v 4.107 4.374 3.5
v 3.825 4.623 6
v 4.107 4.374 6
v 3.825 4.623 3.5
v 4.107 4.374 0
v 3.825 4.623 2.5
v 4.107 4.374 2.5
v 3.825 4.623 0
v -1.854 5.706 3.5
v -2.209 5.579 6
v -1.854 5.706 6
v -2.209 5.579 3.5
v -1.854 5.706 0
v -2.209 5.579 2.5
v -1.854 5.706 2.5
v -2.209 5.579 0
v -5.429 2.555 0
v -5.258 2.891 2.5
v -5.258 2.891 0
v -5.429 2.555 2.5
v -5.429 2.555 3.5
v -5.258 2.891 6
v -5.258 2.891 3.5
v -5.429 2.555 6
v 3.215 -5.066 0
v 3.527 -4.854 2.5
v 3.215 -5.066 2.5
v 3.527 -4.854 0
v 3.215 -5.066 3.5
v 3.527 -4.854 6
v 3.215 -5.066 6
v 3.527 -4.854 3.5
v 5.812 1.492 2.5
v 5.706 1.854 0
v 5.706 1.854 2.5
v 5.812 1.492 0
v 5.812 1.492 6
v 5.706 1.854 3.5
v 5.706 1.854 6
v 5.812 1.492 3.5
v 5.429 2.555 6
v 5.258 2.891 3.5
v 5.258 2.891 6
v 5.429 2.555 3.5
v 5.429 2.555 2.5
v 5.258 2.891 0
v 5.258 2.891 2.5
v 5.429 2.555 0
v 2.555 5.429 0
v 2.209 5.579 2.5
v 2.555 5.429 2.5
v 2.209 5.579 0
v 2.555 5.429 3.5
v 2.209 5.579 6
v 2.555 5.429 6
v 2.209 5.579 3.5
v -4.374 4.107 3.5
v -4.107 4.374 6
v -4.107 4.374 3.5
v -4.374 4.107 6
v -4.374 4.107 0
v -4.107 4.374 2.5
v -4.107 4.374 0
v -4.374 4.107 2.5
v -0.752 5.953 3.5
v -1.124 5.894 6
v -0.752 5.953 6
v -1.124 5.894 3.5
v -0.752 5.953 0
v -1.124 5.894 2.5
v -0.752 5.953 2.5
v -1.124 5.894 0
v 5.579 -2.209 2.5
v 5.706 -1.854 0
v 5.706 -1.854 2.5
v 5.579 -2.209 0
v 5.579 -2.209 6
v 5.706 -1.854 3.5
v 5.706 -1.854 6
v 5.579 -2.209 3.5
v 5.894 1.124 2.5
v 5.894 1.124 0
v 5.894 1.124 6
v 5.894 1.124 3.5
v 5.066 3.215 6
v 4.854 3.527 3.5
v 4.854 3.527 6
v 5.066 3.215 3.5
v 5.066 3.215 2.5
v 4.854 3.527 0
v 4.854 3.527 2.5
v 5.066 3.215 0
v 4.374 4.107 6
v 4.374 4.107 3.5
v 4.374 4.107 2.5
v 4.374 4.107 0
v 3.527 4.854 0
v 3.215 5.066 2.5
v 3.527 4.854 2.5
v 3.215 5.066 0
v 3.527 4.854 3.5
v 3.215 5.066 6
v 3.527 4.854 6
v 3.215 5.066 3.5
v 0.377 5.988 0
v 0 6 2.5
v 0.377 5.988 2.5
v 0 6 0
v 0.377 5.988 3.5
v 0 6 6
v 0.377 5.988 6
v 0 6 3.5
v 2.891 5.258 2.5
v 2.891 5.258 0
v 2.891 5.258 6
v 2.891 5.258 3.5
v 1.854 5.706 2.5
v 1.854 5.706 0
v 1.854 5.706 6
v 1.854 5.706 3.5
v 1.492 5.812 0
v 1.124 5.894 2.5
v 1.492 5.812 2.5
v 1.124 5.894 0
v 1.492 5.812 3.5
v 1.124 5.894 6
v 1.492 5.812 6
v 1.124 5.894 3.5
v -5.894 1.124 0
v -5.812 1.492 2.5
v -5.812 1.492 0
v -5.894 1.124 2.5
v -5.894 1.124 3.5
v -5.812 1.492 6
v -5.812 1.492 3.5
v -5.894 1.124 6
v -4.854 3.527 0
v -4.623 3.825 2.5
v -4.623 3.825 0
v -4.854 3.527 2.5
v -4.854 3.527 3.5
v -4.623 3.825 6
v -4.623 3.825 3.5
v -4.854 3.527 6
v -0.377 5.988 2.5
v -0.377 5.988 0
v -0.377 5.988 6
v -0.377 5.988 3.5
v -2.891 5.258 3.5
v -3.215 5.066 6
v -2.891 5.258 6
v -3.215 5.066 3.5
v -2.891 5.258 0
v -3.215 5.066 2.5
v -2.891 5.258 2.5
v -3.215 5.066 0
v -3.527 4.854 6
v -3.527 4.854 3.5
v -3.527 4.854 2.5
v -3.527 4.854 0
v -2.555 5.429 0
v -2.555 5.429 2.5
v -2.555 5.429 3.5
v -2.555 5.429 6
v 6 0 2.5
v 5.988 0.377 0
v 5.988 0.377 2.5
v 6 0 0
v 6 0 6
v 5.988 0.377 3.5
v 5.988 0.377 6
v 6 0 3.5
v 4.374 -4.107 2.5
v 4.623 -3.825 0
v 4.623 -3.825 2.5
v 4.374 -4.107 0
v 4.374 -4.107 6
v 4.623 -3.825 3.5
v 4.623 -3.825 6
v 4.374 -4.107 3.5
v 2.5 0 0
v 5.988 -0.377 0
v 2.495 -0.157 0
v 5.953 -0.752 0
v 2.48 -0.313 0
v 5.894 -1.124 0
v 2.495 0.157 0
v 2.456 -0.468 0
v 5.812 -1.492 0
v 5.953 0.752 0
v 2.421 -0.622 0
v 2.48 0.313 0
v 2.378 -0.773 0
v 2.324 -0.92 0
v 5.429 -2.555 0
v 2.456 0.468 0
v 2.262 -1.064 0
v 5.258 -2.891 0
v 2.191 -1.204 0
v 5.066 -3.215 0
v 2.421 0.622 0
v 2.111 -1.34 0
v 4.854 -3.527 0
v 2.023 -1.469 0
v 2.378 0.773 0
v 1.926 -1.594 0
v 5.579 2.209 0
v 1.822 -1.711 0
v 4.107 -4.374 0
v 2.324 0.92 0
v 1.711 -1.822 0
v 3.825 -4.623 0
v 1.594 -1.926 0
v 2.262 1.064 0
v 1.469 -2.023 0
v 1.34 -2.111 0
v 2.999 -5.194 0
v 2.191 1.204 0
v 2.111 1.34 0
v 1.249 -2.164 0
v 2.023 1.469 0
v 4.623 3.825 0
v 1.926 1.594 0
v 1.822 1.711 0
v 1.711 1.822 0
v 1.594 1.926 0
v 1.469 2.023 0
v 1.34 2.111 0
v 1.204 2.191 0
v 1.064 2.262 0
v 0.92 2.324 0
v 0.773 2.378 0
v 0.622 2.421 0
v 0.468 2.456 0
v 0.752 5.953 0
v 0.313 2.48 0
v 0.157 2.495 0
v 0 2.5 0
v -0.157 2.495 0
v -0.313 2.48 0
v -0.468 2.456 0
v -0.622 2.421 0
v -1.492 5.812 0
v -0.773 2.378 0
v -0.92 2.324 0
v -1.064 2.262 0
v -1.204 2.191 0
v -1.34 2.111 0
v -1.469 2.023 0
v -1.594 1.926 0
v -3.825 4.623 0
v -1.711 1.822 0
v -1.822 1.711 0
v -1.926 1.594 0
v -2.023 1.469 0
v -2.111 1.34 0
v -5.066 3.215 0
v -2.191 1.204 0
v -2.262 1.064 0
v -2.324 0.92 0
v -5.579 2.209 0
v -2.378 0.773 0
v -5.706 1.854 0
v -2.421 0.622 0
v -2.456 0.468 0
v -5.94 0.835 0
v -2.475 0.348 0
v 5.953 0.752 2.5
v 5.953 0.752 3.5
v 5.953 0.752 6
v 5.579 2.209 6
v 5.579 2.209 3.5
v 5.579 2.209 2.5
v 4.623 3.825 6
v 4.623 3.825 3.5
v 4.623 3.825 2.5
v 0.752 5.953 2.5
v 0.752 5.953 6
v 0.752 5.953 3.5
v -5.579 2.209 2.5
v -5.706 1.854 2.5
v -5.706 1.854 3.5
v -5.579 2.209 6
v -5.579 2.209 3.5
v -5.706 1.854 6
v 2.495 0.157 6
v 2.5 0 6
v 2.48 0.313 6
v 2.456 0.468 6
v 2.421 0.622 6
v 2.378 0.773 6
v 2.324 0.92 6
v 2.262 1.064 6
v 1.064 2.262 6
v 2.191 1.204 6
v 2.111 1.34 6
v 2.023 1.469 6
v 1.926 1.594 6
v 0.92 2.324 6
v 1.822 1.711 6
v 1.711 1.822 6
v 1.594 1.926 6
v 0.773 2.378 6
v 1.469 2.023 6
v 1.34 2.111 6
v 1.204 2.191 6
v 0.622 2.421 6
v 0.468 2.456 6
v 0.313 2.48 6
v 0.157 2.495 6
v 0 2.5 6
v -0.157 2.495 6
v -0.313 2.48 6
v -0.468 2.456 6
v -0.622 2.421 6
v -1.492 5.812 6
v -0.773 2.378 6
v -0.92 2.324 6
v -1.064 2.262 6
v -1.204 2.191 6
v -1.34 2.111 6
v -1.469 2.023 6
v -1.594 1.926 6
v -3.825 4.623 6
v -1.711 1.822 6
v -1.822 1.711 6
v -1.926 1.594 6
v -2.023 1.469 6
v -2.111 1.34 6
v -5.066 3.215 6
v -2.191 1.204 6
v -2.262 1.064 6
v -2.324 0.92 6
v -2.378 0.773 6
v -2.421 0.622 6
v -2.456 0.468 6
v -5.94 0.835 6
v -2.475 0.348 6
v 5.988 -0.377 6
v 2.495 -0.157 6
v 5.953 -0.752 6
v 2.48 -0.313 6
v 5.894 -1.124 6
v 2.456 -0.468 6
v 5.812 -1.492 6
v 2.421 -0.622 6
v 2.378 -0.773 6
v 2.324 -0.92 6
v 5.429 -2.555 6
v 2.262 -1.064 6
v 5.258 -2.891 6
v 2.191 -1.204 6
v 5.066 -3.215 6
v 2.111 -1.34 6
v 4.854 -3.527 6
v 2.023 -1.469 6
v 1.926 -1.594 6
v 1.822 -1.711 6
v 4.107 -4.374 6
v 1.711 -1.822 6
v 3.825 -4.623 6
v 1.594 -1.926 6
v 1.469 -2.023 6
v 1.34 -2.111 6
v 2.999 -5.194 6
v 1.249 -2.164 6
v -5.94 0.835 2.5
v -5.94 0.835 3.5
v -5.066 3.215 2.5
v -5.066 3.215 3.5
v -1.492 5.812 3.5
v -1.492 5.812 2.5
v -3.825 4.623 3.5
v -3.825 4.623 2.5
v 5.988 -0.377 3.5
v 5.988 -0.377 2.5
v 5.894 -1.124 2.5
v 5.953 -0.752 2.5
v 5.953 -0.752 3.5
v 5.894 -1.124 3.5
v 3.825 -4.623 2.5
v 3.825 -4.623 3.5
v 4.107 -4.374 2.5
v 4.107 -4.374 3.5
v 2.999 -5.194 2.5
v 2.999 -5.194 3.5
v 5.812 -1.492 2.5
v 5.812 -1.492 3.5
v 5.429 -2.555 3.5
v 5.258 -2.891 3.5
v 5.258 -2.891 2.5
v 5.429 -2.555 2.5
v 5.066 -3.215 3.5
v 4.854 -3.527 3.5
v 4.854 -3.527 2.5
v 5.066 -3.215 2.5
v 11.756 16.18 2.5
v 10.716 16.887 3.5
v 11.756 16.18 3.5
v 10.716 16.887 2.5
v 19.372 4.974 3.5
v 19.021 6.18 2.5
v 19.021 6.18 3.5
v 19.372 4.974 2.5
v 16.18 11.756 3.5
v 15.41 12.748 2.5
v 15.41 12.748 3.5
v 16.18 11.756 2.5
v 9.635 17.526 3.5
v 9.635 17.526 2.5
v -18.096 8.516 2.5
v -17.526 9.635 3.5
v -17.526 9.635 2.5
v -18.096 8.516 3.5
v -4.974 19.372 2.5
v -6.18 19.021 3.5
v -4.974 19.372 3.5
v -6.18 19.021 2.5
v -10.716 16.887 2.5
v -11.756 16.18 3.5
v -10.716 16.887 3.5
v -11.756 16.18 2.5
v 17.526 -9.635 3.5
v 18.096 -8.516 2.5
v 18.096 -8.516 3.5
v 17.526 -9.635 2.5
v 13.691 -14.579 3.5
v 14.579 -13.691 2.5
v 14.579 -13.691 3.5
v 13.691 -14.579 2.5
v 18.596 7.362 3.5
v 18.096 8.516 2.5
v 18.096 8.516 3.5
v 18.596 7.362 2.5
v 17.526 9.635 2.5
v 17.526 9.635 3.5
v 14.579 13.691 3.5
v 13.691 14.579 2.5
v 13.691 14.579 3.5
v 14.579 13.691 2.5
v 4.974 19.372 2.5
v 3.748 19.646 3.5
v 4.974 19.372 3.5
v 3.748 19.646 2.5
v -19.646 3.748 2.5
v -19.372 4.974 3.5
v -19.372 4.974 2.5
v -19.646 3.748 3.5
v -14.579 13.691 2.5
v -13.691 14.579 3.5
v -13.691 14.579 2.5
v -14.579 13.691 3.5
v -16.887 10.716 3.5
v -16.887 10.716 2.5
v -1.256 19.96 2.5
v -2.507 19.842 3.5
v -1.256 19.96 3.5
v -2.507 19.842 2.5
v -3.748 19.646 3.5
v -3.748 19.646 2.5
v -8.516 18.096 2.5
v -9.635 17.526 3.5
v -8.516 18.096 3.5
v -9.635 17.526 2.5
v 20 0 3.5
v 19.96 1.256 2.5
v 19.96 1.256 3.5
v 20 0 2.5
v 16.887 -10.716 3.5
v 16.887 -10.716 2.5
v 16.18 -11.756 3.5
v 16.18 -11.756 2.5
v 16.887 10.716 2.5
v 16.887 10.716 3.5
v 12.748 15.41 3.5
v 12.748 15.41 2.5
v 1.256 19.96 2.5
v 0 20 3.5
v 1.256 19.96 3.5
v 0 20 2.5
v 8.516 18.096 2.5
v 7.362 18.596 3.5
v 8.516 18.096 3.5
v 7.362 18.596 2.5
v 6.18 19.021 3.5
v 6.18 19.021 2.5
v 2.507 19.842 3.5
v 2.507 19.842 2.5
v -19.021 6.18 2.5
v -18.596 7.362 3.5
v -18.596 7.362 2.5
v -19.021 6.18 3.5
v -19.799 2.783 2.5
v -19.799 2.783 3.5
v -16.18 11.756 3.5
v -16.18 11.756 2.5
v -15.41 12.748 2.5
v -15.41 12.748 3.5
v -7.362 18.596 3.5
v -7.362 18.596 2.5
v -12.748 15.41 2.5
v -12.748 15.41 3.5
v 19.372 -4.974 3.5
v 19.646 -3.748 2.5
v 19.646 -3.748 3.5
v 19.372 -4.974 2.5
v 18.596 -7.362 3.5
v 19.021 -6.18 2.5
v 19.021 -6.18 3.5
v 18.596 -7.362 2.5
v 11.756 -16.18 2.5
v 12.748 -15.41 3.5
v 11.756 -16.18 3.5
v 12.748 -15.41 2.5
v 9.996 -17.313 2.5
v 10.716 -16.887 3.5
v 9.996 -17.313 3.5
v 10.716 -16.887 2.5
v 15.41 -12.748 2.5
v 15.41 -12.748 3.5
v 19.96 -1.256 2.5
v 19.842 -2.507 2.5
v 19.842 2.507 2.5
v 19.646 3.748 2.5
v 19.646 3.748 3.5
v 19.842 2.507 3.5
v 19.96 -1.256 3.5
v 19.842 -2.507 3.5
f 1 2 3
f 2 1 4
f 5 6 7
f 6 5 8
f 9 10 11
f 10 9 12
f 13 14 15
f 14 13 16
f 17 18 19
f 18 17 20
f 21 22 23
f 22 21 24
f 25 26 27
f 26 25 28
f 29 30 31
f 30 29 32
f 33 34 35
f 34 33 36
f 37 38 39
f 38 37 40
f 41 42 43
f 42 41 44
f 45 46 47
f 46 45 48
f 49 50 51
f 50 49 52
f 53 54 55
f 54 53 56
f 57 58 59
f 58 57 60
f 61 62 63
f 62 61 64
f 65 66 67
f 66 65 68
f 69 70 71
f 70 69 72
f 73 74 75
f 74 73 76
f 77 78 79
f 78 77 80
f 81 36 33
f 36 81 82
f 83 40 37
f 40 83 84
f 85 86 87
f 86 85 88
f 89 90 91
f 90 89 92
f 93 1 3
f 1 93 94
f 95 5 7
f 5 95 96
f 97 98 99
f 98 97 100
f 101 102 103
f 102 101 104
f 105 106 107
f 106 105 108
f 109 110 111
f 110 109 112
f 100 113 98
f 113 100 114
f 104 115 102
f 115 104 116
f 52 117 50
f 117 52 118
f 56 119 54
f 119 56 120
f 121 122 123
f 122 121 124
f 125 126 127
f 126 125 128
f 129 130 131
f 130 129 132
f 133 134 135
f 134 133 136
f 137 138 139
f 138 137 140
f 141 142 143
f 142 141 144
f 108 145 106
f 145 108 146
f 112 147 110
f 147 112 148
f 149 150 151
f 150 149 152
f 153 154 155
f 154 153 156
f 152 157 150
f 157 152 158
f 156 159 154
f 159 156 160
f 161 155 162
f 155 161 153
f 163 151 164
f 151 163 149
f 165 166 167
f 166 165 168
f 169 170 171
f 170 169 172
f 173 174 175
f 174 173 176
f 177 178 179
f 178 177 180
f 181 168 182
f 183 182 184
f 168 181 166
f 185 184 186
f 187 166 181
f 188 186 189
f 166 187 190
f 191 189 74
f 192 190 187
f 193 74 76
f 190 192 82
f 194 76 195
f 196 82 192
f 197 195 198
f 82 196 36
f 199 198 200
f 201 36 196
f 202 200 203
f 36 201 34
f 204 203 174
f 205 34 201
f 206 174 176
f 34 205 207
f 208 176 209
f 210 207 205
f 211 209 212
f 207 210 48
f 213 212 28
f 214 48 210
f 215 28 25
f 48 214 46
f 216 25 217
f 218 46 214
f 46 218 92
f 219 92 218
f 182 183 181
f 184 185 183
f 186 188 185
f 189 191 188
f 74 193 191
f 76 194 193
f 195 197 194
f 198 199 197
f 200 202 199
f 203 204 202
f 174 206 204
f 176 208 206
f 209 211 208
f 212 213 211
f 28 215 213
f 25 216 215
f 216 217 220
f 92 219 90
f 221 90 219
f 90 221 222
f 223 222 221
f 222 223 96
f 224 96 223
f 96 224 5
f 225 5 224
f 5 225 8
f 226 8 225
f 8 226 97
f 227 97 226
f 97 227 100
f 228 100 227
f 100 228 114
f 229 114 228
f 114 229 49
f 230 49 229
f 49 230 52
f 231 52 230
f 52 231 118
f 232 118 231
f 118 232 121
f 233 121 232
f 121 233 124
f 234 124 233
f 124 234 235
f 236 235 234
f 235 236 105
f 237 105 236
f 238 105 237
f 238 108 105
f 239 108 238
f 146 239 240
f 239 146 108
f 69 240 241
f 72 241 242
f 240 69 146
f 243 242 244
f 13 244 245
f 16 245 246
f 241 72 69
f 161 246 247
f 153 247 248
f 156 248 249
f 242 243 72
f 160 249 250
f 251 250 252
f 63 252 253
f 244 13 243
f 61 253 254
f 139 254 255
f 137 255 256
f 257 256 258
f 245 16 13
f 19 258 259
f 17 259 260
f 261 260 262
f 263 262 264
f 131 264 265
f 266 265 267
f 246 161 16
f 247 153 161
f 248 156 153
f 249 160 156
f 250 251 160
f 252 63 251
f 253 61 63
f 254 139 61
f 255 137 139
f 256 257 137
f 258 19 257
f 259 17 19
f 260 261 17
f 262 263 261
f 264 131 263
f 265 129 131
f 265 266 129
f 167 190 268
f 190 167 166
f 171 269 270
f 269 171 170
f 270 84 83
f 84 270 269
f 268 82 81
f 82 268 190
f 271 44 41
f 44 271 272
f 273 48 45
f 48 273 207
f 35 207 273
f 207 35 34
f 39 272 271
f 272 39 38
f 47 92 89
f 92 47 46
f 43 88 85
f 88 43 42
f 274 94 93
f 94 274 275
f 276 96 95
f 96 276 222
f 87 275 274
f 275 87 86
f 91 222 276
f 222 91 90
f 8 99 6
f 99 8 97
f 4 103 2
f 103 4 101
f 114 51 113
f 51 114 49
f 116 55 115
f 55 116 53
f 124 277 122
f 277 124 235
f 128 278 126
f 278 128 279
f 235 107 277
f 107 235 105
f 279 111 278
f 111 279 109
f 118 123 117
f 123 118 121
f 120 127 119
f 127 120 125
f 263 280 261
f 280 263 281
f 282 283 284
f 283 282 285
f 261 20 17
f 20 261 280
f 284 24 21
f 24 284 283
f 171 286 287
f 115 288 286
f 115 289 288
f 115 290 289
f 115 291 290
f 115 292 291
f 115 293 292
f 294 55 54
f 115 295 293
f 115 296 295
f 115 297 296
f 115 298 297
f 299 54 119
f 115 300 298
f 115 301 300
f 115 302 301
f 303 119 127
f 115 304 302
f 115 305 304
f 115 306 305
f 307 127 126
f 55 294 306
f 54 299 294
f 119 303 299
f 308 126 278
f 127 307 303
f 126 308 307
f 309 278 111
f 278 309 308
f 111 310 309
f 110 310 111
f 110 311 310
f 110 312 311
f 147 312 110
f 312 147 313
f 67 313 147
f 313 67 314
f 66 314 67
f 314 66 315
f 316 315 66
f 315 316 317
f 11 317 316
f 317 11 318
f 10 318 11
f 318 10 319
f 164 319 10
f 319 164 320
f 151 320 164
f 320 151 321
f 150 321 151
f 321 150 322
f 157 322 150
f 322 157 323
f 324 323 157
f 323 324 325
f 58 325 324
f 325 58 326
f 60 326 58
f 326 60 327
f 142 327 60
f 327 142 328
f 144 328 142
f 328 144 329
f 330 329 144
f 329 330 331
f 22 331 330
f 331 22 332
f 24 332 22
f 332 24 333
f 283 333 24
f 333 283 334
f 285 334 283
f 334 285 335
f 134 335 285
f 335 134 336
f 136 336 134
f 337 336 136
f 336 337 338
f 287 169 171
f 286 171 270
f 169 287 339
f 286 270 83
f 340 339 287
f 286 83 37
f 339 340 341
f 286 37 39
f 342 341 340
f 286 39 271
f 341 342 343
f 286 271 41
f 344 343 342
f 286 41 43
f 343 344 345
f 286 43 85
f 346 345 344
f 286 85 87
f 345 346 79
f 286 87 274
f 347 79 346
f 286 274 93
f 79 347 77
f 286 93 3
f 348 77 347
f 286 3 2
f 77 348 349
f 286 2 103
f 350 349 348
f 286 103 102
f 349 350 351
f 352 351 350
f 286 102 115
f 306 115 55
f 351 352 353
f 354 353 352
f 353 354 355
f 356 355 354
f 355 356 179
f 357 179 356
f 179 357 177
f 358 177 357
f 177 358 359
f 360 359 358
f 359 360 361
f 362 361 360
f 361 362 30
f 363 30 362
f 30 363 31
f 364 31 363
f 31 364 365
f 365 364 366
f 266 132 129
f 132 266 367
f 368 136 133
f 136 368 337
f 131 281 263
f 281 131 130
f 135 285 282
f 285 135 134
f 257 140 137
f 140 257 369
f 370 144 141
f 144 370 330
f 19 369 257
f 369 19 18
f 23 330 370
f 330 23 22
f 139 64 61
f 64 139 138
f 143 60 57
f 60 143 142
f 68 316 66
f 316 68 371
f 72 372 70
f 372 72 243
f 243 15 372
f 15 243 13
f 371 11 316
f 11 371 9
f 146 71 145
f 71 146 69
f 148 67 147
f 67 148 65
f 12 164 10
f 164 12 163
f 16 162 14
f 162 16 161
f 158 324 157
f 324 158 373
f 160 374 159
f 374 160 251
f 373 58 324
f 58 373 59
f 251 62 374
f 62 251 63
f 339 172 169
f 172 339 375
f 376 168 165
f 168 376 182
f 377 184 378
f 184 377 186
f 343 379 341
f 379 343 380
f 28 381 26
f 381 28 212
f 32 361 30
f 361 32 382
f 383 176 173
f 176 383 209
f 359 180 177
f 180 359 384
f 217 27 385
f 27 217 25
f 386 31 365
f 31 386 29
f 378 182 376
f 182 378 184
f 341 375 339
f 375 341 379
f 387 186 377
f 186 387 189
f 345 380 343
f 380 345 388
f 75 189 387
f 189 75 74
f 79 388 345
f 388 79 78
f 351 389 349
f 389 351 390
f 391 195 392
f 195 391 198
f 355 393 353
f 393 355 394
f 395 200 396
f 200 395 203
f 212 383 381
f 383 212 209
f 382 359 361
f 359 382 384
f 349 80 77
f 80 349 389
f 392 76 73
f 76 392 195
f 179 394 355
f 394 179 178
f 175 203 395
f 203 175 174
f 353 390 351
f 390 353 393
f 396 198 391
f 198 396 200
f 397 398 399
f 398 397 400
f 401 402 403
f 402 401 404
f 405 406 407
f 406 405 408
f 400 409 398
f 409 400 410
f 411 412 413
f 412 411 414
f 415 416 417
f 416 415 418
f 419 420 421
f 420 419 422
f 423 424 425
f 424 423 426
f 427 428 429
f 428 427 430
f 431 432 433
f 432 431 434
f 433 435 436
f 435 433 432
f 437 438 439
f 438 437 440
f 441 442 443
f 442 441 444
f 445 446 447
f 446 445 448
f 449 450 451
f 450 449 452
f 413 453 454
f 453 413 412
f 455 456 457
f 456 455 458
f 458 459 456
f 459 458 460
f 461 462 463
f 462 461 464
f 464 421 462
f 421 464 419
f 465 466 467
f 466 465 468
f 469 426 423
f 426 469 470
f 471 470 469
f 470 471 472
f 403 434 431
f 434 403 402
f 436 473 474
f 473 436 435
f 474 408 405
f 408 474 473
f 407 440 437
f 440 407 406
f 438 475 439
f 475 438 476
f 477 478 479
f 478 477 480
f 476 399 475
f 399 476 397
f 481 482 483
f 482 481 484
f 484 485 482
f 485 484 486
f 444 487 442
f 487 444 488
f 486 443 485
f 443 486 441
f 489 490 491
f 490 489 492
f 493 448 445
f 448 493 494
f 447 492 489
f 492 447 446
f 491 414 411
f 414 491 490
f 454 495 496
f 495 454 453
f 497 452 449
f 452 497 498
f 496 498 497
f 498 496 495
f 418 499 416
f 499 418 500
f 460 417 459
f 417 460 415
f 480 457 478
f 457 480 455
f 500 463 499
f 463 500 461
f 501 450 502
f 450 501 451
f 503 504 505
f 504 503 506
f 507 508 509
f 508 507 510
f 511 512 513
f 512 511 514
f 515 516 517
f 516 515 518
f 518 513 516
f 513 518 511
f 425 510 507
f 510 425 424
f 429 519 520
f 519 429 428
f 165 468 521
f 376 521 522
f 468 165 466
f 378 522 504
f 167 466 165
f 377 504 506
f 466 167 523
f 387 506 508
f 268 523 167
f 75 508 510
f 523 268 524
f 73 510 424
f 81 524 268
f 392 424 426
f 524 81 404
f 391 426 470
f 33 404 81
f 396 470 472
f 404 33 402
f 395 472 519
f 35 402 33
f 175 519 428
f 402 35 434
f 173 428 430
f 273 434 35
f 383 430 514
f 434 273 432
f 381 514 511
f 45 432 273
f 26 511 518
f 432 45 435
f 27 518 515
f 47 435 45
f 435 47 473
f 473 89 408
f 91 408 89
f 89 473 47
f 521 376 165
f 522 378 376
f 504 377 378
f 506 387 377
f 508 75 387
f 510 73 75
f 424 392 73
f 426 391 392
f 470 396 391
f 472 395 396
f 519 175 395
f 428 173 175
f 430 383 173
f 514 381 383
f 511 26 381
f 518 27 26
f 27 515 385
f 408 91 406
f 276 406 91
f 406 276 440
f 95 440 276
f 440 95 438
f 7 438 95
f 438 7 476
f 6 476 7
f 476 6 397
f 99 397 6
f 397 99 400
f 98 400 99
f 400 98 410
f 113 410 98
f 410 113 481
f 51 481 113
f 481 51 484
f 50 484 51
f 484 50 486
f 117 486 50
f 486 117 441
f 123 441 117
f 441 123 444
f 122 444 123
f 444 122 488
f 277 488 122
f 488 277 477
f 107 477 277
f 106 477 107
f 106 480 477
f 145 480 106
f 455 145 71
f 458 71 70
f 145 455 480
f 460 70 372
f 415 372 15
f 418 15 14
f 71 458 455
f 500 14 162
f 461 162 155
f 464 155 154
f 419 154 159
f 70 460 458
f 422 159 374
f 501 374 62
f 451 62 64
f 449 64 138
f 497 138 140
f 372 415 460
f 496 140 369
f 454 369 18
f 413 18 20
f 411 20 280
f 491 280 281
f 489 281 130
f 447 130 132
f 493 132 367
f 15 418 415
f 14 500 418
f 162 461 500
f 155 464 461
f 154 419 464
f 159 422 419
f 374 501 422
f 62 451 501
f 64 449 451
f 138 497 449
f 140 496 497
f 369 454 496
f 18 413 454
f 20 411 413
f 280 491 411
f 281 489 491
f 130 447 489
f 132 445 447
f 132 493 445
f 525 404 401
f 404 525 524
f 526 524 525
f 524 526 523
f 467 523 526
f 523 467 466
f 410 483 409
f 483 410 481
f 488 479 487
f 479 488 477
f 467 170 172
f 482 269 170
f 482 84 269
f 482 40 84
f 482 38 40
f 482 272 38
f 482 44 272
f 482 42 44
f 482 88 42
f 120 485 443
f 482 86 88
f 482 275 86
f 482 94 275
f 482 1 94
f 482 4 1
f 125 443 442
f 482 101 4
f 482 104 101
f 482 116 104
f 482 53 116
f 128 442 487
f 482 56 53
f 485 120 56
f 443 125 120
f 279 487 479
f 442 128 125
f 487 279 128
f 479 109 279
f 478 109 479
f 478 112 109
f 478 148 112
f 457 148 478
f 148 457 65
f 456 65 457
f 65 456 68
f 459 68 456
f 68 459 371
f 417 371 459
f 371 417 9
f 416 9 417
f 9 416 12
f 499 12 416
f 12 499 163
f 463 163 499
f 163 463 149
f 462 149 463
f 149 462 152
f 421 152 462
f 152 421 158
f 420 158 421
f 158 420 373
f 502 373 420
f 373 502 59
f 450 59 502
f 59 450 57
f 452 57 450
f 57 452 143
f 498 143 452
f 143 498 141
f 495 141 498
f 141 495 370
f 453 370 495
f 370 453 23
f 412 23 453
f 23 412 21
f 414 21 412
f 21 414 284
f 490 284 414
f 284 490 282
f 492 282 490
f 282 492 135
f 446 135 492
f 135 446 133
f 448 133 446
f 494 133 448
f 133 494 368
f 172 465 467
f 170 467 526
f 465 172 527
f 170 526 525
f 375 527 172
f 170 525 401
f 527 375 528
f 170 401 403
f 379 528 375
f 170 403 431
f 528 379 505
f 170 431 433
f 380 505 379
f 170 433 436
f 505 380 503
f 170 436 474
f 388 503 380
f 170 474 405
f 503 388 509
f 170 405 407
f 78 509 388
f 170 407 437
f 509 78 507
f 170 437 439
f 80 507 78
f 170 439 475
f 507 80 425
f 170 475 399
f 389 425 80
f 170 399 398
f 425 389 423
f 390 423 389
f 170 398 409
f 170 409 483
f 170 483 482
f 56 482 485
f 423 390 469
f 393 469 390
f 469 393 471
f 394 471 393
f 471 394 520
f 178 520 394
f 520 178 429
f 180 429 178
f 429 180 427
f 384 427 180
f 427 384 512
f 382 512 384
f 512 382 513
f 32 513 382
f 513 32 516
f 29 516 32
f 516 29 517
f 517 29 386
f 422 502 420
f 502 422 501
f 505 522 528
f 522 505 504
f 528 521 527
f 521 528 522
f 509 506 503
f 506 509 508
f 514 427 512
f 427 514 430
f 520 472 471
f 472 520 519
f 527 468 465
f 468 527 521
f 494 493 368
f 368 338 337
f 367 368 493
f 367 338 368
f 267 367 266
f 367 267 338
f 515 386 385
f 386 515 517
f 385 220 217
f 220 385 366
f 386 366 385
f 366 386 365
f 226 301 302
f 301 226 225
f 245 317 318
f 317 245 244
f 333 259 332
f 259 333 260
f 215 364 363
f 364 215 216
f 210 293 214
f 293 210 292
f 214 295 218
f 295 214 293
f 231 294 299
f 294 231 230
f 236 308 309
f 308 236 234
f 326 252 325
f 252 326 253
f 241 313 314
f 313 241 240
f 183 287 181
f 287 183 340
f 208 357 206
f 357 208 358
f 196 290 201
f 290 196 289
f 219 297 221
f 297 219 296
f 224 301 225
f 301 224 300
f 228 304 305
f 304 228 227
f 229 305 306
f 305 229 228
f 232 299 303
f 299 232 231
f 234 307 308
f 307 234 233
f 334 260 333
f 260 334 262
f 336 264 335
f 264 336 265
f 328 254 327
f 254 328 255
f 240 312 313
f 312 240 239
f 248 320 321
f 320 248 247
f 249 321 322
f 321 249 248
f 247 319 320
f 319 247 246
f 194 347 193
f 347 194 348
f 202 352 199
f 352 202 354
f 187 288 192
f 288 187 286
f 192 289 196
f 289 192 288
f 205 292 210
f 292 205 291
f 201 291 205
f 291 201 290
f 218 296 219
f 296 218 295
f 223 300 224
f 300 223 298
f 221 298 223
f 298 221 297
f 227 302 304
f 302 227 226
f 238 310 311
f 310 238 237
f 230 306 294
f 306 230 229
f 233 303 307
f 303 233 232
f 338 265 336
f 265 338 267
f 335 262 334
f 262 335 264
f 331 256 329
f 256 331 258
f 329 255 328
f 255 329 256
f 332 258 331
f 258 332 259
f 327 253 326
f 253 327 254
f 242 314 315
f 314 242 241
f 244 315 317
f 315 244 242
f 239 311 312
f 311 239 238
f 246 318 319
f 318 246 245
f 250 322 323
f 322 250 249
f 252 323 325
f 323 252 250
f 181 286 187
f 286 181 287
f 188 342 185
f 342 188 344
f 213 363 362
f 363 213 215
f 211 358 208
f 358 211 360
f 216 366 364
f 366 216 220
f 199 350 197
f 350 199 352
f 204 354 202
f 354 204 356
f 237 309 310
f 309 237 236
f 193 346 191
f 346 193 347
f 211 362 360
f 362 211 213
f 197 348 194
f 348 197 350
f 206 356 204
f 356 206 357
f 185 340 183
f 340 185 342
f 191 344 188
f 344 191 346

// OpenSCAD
// Elevevator Support for RM F104
/* This makes a 3D model for a support for the elevator on the tail.
 * The parameters are given below in mm.
 * The construction method is:
 * 1. make a circular plate,
 * 2. put a circular insert on top of it
 * 3. put another circular plate on top of that.
 * 4. then from all that subtract:
 *    4a. a rod of correct diameter, correctly positioned,
 *    4b. 2 cubes that have been rotated to the proper angles and postioned correctly.
 * 5. the end result is produced by the call to 'support();'
 */

// all dimensions are millimeters
rodDia = 5.0;  // diameter of rod to be glued to support
foamThickness = 6.0; //4.8;  // foam thickness so as to make it flush
plateThickness = 1.0;  // support plates sandwich walls
plateDia = 40.0;   // diameter of plate
insertThickness = foamThickness; // - 2.0*plateThickness;  // width of the inner piece
insertDia = 12.0; //(plateDia + rodDia)/2.0;  // diameter of inner piece
forAngle = 30.0;  // angle of forward slope insert for fin leading edge
aftAngle = -8.0;  // angle of rearward slope

// do not change these!
epsilon = 50.0;  // used to ensure that there are no close misses
$fn = 100;  // curve resolution

module plate(dia, ht){
    cylinder(d=dia,h=ht);
}


module insertCutter(d,h){
    linear_extrude(height = h*10,center=true,convexity=10,twist=0){
        polygon(points = [[0,0],
                          [sin(forAngle)*(d+epsilon),-cos(forAngle)*(d+epsilon)],
                          [-cos(forAngle)*(d+epsilon),-cos(forAngle)*(d+epsilon)]], 
                convexity=10);
    }
}


module insert(d,t){
    difference(){
        cylinder(d=d,h=t);
        insertCutter(d,t);
    }
}

module rod(d,ht){
    translate([0,0,0]){
        cylinder(d=d,h=ht,center=true);
    }
}


module cutter(d,h){
    linear_extrude(height = h*10,center=true,convexity=10,twist=0){
        polygon(points = [[0,0],
                          [0,-(d+epsilon)],
                          [-(d+epsilon),-(d+epsilon)],
                          [-cos(aftAngle)*(d+epsilon), 
                           -sin(aftAngle)*(d+epsilon)]], 
                convexity=10);
    }
}


module support(){
    difference(){
        union(){
            //outerPlate(plateDia,plateThickness);
            //translate([0,0,plateThickness]){
                insert(insertDia,insertThickness);
            //}
            translate([0,0,insertThickness/2.0-plateThickness/2.0]){
                plate(plateDia,plateThickness);
            }
        }
        cutter(plateDia,foamThickness*2.0);
        insertCutter(plateDia,foamThickness*2.0);
        rod(rodDia,foamThickness*3.0);
    }
}
support();
